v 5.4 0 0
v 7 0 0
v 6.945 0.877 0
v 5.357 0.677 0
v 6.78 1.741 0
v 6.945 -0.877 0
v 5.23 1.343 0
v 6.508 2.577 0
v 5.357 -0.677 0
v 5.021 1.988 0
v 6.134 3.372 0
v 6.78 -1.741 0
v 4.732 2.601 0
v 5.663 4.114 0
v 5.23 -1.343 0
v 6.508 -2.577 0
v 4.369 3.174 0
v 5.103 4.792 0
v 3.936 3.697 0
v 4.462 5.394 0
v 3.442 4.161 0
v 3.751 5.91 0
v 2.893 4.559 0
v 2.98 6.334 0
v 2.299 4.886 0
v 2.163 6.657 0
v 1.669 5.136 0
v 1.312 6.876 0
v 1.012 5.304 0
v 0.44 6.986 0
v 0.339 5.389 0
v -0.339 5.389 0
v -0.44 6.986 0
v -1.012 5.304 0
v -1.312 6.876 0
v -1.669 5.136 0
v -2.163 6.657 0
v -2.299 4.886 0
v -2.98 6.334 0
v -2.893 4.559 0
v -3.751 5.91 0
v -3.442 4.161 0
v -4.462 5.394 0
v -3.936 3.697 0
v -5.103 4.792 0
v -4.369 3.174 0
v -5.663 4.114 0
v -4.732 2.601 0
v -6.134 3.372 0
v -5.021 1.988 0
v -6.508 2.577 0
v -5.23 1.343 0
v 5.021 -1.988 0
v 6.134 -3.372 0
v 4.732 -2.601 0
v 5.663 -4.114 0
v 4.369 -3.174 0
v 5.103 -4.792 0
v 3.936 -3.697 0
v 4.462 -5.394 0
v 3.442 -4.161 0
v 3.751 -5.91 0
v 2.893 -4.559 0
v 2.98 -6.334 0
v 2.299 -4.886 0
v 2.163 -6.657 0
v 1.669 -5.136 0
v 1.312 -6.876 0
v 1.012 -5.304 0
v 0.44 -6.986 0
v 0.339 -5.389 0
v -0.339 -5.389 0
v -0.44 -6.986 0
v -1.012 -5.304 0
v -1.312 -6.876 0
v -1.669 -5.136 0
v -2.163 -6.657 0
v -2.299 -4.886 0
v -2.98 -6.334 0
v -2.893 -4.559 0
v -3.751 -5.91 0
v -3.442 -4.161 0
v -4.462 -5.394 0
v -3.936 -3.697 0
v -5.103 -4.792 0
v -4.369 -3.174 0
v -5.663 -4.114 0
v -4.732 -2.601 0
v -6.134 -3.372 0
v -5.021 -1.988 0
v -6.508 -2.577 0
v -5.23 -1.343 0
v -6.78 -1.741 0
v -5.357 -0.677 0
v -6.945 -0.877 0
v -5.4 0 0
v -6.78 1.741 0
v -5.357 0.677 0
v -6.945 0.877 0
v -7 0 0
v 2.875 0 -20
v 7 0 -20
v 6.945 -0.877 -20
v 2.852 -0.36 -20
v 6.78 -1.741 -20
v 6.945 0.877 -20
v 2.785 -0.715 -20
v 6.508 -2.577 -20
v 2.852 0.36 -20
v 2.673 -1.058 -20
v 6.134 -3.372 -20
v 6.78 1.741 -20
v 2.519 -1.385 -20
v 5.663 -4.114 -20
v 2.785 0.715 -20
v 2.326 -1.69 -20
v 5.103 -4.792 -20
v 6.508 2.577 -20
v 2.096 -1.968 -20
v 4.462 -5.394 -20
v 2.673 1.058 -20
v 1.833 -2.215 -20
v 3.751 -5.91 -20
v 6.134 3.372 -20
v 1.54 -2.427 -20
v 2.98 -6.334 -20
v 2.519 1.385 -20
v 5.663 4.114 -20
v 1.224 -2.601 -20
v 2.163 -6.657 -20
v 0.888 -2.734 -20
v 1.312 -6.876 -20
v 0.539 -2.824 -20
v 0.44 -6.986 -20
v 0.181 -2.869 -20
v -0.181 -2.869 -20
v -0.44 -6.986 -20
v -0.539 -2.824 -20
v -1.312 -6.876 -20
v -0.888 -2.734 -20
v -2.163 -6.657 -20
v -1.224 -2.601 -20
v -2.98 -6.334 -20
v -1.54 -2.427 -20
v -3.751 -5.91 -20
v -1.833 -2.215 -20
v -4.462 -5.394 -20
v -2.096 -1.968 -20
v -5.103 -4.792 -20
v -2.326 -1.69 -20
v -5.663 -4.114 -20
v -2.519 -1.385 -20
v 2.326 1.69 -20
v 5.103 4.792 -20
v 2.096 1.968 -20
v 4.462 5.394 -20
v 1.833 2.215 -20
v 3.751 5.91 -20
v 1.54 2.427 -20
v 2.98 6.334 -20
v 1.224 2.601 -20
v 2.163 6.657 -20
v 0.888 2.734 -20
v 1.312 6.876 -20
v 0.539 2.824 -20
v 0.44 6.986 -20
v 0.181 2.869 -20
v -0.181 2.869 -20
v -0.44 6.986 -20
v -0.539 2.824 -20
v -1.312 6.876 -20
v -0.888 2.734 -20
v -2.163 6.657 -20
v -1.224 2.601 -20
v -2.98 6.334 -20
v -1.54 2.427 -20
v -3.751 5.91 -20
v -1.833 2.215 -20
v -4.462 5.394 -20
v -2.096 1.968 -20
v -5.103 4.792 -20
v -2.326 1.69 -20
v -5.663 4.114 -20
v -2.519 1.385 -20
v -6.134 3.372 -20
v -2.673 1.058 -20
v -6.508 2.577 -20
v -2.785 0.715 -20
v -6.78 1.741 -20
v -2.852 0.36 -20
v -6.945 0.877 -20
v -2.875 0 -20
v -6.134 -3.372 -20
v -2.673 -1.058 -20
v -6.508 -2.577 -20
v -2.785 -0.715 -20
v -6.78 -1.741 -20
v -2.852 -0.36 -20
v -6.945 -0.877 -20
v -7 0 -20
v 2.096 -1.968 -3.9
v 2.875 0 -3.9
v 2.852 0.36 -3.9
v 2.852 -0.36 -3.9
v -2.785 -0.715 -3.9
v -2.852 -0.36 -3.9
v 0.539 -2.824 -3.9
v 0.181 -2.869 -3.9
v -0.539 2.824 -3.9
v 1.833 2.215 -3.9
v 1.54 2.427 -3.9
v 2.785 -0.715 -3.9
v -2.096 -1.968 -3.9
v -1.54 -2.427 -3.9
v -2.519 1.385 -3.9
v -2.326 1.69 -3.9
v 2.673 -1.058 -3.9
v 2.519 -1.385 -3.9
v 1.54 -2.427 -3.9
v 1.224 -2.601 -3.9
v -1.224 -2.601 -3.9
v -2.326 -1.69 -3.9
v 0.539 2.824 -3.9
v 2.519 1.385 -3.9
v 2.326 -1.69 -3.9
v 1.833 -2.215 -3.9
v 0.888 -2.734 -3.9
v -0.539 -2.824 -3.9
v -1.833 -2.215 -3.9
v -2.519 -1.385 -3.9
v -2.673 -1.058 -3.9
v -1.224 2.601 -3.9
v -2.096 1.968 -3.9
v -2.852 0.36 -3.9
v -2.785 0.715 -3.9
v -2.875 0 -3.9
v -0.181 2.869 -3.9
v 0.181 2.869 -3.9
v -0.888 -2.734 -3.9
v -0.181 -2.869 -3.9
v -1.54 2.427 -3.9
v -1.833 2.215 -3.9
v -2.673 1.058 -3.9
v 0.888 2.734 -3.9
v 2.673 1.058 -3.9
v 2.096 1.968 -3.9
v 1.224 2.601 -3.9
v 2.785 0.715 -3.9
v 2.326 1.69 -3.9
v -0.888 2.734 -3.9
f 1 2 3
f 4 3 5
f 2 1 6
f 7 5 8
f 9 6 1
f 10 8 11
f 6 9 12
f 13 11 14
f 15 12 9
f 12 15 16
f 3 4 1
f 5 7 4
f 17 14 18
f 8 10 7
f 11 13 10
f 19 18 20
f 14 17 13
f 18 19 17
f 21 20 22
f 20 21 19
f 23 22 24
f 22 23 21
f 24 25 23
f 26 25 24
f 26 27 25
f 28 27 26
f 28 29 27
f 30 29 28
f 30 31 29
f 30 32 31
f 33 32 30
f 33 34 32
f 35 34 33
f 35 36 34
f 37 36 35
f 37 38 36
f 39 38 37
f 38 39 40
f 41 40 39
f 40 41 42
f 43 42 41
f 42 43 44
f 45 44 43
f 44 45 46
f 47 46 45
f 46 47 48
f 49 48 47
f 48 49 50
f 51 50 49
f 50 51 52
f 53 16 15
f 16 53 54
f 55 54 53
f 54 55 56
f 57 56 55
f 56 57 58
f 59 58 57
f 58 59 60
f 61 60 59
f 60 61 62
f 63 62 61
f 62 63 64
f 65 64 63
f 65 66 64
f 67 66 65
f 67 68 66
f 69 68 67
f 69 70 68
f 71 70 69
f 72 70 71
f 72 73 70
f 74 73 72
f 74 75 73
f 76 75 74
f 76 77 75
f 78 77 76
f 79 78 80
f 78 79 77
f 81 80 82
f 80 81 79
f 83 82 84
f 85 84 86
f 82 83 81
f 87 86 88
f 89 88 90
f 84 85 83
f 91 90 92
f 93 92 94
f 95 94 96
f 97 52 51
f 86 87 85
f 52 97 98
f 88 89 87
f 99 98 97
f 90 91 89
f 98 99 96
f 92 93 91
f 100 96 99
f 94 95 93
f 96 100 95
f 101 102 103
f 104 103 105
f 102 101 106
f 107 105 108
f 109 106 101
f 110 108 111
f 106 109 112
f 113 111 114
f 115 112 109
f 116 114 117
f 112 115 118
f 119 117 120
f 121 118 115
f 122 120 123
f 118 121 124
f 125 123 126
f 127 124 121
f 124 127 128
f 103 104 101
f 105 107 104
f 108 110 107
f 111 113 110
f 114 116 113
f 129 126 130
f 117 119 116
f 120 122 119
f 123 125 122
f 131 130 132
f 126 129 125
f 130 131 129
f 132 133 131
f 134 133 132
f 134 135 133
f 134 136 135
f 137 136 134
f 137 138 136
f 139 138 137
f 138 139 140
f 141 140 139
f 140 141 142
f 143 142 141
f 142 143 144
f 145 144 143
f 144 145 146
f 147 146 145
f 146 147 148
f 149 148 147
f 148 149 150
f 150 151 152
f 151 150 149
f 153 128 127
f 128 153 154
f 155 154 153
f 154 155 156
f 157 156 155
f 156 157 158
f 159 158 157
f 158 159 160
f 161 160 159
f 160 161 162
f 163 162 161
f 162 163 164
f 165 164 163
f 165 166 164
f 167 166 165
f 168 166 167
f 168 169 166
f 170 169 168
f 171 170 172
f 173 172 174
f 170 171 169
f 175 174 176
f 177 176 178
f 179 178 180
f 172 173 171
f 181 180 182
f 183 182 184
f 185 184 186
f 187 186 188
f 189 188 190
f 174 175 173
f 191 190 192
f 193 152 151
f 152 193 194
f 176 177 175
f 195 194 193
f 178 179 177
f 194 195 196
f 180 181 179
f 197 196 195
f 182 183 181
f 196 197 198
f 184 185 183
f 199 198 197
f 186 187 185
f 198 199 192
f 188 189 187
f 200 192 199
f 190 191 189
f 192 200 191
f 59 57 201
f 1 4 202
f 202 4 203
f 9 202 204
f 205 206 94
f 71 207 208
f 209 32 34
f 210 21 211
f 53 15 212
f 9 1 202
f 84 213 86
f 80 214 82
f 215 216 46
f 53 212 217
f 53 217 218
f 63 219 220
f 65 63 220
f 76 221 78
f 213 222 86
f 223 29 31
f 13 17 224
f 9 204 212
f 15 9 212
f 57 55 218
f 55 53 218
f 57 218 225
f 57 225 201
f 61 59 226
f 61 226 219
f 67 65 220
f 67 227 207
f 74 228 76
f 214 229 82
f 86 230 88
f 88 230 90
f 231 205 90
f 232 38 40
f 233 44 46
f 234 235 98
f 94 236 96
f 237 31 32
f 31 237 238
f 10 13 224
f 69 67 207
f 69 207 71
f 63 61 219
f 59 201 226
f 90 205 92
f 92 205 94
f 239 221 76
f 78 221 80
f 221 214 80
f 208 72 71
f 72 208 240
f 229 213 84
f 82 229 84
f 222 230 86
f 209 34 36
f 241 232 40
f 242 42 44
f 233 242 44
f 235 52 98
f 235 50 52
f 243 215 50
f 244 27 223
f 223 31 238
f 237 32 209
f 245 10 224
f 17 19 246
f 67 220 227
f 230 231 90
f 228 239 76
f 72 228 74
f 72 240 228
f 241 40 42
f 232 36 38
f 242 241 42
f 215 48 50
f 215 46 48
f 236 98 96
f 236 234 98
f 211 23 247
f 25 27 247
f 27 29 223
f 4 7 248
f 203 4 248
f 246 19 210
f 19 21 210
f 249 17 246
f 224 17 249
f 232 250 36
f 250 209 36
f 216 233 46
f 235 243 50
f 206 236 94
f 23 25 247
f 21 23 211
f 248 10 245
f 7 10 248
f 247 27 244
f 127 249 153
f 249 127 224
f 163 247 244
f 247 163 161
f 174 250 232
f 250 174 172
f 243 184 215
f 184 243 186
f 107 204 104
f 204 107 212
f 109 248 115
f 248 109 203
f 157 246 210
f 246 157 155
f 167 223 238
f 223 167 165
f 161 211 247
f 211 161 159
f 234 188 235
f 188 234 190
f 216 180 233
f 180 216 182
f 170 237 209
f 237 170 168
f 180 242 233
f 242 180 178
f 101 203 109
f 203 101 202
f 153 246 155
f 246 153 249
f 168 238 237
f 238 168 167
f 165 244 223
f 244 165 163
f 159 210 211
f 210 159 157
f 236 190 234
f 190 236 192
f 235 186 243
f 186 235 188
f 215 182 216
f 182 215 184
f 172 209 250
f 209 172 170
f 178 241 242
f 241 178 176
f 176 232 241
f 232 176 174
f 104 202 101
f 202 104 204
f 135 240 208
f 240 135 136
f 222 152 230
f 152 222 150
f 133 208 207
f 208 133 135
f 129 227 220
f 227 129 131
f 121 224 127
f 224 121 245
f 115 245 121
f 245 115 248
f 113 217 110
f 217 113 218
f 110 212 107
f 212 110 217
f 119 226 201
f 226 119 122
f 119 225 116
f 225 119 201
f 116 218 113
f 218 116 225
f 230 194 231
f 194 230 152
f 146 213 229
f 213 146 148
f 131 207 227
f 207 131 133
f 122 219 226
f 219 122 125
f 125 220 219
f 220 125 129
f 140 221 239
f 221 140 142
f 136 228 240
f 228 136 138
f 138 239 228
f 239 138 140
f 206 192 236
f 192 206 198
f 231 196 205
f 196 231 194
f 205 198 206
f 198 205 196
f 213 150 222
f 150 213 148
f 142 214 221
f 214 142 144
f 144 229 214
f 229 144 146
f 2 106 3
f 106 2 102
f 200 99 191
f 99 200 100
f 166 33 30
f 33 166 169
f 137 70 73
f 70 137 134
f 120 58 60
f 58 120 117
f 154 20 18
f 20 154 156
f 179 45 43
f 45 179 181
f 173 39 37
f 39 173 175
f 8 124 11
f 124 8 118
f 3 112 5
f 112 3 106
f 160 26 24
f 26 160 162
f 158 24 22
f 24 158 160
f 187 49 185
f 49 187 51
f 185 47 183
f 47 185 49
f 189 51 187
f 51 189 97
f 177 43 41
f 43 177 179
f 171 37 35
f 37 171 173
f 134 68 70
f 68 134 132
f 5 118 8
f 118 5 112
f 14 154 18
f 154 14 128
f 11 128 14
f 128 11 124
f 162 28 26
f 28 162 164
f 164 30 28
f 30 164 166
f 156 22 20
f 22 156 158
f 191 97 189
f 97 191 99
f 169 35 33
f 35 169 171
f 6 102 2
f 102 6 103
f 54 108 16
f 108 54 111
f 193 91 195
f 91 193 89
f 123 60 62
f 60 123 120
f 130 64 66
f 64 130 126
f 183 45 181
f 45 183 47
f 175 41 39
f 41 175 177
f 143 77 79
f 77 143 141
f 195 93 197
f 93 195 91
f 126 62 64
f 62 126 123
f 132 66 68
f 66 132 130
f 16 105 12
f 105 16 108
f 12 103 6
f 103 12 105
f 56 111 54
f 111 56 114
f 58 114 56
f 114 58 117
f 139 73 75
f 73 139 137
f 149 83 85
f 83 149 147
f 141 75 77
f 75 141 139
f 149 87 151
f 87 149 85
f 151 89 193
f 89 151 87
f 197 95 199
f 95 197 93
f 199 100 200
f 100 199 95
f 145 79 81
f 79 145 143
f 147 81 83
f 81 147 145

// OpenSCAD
$fn = 50;


difference() {
	union() {
		translate(v = [0, 0, -20.0000000000]) {
			cylinder(h = 20, r = 7.0000000000);
		}
		cylinder(h = 0, r = 10.0000000000);
	}
	union() {
		translate(v = [0, 0, 0]) {
			rotate(a = [0, 0, 0]) {
				difference() {
					union() {
						#translate(v = [0, 0, -20.0000000000]) {
							cylinder(h = 20, r = 2.6000000000);
						}
						#translate(v = [0, 0, -3.9000000000]) {
							cylinder(h = 3.9000000000, r1 = 2.8750000000, r2 = 5.4000000000);
						}
						#translate(v = [0, 0, -20.0000000000]) {
							cylinder(h = 20, r = 2.8750000000);
						}
						#translate(v = [0, 0, -20.0000000000]) {
							cylinder(h = 20, r = 2.6000000000);
						}
					}
					union();
				}
			}
		}
	}
}
